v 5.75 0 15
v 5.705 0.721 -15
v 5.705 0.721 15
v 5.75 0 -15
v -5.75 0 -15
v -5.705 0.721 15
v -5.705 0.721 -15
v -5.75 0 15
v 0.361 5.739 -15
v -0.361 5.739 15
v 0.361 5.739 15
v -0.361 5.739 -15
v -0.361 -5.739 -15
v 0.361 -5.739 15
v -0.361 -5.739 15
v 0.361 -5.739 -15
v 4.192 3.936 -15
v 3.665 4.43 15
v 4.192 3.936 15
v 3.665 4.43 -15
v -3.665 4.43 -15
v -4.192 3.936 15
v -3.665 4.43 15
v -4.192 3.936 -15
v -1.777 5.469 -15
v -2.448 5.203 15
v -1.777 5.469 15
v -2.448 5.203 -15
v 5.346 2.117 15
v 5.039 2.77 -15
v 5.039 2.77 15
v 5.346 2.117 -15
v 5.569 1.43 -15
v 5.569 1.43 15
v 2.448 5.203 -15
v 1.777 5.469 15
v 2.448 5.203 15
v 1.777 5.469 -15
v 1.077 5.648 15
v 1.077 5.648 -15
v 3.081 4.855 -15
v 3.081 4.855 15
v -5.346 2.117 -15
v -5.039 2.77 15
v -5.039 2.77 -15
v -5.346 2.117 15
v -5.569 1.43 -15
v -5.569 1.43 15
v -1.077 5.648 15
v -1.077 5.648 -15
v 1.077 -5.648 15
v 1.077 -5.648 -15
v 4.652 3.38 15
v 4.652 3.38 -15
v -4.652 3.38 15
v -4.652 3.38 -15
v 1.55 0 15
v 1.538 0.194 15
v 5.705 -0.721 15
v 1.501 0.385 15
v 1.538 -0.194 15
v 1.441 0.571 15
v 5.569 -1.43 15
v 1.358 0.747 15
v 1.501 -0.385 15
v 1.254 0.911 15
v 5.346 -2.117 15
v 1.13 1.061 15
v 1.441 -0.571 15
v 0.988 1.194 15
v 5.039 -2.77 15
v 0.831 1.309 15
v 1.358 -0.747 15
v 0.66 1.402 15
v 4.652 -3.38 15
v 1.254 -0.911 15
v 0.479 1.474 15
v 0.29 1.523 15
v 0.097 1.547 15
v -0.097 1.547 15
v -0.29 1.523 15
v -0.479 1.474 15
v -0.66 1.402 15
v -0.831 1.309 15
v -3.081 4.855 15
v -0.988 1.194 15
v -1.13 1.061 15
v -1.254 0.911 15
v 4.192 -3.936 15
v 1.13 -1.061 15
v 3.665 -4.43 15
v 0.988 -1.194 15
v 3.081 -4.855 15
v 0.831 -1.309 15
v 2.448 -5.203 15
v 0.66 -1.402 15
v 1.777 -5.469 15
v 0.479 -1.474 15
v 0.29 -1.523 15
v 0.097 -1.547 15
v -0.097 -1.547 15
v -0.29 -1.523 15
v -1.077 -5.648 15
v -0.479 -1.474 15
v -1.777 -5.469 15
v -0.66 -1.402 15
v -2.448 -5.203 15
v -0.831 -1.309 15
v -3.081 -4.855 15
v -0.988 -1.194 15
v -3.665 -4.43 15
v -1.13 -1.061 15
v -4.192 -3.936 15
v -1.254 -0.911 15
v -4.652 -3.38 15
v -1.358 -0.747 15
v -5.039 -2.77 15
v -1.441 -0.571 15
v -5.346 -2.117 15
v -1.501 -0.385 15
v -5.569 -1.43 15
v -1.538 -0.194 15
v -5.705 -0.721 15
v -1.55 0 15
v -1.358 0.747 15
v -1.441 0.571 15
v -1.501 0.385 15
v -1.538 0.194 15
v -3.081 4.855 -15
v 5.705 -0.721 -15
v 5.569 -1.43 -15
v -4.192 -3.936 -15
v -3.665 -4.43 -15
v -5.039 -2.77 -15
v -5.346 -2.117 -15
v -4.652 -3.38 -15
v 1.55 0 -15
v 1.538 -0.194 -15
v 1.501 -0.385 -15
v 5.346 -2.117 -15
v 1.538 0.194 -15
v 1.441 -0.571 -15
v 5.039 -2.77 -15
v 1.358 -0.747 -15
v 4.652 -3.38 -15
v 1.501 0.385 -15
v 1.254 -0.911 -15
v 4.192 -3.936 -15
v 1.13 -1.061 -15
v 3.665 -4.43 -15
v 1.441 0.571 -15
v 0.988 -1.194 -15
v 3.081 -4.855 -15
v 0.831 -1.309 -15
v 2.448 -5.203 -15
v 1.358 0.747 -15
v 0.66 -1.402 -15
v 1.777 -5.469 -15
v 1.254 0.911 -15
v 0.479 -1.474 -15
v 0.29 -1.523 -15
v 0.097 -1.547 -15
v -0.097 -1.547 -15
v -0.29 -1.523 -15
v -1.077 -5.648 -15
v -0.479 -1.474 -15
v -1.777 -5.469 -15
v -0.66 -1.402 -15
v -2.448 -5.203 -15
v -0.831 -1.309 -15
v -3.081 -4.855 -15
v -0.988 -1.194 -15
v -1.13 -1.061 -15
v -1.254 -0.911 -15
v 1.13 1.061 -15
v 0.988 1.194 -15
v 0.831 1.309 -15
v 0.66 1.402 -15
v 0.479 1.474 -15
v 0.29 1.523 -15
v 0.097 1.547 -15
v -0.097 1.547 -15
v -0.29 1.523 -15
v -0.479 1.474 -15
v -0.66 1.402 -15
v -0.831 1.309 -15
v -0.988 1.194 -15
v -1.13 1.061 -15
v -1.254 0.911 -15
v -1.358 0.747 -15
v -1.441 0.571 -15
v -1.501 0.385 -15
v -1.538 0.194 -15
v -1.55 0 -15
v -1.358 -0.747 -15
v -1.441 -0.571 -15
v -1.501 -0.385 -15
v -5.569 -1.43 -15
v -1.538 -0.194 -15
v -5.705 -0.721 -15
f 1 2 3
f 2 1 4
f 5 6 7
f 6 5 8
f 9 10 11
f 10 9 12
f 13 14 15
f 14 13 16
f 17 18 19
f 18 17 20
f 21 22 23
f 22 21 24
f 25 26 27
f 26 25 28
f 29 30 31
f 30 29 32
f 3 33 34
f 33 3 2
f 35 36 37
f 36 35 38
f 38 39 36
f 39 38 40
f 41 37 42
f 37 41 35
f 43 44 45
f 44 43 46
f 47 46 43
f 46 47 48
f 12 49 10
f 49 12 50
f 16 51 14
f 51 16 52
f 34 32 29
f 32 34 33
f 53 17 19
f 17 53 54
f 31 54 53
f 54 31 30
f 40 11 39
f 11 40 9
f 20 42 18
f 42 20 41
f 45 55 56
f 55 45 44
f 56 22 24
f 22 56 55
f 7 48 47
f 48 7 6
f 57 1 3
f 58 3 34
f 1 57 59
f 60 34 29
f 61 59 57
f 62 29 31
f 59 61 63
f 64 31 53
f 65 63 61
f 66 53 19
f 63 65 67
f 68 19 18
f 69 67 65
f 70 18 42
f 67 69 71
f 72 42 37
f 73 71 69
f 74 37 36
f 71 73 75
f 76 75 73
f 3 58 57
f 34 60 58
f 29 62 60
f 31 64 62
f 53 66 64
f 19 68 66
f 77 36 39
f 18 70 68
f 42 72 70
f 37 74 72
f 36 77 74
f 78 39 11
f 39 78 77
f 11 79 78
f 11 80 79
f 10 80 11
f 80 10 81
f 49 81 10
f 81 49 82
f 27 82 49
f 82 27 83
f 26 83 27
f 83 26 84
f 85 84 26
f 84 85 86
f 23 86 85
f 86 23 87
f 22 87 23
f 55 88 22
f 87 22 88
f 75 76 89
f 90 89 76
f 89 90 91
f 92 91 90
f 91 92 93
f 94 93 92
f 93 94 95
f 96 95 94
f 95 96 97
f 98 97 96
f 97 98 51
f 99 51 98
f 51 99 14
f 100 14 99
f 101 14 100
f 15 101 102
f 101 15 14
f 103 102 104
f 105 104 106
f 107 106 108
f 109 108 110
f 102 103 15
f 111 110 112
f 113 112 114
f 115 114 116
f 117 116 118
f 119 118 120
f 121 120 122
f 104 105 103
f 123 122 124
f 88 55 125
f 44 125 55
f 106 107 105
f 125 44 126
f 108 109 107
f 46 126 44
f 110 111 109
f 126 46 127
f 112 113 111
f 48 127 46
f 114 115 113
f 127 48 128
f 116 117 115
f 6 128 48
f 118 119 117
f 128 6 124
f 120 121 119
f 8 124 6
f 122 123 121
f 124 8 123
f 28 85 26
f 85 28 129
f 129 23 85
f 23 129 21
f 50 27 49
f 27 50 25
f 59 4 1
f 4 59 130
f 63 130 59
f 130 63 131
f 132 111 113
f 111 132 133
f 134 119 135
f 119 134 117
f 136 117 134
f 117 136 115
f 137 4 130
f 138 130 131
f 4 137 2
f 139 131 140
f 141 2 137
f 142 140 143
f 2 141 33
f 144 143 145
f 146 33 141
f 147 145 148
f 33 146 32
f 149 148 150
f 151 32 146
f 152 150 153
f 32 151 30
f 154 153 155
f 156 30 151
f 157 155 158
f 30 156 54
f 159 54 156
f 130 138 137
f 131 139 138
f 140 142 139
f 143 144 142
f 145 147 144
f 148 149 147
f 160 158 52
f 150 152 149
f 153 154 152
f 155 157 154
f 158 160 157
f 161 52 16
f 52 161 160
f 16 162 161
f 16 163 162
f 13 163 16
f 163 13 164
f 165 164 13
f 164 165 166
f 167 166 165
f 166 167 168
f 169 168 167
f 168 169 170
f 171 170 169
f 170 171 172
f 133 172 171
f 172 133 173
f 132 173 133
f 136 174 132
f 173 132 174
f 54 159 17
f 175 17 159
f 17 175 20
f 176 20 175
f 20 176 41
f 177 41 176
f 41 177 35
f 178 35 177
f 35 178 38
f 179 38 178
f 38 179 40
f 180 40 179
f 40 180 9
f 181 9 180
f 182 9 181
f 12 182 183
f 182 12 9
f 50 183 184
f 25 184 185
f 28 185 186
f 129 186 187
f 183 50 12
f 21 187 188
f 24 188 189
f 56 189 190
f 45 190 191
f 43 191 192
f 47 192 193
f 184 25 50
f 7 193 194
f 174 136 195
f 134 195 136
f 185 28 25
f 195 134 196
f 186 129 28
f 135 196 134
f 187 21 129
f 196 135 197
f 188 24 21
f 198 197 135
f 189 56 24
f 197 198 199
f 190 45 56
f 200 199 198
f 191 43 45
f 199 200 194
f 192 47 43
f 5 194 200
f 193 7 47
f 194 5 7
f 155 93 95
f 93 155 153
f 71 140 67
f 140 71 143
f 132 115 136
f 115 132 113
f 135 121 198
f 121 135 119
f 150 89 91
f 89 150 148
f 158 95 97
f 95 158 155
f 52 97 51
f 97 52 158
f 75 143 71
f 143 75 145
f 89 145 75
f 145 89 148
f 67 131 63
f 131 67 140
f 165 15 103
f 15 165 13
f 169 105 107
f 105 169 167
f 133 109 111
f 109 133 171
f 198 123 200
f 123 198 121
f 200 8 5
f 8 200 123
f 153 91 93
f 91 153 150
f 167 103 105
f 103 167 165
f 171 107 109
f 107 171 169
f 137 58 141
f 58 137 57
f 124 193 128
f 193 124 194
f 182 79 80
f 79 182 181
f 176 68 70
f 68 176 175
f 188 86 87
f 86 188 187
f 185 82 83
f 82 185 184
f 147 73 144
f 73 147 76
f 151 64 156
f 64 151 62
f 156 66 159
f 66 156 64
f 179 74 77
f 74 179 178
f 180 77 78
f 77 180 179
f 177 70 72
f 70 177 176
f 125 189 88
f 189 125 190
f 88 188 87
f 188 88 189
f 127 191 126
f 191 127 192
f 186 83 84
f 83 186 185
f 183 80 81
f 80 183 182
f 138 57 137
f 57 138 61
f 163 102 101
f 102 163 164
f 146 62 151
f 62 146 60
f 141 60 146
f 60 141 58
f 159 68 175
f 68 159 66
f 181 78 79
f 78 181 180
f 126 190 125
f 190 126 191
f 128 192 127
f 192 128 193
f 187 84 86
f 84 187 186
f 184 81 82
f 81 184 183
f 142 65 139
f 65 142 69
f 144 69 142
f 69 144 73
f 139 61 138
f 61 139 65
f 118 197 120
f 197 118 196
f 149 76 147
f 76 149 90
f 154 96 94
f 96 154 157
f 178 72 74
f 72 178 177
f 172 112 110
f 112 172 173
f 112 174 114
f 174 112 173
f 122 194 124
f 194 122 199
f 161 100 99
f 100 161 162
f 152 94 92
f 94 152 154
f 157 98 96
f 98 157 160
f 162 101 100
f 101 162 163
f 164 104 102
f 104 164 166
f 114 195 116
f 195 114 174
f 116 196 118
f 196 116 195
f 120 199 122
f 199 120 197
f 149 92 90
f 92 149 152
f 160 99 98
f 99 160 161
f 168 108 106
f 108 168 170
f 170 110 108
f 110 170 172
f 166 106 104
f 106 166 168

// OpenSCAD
$fn = 50;


difference() {
	union() {
		translate(v = [0, 0, -15.0000000000]) {
			cylinder(h = 30, r = 5.7500000000);
		}
	}
	union() {
		translate(v = [0, 0, -100.0000000000]) {
			cylinder(h = 200, r = 1.5500000000);
		}
	}
}
